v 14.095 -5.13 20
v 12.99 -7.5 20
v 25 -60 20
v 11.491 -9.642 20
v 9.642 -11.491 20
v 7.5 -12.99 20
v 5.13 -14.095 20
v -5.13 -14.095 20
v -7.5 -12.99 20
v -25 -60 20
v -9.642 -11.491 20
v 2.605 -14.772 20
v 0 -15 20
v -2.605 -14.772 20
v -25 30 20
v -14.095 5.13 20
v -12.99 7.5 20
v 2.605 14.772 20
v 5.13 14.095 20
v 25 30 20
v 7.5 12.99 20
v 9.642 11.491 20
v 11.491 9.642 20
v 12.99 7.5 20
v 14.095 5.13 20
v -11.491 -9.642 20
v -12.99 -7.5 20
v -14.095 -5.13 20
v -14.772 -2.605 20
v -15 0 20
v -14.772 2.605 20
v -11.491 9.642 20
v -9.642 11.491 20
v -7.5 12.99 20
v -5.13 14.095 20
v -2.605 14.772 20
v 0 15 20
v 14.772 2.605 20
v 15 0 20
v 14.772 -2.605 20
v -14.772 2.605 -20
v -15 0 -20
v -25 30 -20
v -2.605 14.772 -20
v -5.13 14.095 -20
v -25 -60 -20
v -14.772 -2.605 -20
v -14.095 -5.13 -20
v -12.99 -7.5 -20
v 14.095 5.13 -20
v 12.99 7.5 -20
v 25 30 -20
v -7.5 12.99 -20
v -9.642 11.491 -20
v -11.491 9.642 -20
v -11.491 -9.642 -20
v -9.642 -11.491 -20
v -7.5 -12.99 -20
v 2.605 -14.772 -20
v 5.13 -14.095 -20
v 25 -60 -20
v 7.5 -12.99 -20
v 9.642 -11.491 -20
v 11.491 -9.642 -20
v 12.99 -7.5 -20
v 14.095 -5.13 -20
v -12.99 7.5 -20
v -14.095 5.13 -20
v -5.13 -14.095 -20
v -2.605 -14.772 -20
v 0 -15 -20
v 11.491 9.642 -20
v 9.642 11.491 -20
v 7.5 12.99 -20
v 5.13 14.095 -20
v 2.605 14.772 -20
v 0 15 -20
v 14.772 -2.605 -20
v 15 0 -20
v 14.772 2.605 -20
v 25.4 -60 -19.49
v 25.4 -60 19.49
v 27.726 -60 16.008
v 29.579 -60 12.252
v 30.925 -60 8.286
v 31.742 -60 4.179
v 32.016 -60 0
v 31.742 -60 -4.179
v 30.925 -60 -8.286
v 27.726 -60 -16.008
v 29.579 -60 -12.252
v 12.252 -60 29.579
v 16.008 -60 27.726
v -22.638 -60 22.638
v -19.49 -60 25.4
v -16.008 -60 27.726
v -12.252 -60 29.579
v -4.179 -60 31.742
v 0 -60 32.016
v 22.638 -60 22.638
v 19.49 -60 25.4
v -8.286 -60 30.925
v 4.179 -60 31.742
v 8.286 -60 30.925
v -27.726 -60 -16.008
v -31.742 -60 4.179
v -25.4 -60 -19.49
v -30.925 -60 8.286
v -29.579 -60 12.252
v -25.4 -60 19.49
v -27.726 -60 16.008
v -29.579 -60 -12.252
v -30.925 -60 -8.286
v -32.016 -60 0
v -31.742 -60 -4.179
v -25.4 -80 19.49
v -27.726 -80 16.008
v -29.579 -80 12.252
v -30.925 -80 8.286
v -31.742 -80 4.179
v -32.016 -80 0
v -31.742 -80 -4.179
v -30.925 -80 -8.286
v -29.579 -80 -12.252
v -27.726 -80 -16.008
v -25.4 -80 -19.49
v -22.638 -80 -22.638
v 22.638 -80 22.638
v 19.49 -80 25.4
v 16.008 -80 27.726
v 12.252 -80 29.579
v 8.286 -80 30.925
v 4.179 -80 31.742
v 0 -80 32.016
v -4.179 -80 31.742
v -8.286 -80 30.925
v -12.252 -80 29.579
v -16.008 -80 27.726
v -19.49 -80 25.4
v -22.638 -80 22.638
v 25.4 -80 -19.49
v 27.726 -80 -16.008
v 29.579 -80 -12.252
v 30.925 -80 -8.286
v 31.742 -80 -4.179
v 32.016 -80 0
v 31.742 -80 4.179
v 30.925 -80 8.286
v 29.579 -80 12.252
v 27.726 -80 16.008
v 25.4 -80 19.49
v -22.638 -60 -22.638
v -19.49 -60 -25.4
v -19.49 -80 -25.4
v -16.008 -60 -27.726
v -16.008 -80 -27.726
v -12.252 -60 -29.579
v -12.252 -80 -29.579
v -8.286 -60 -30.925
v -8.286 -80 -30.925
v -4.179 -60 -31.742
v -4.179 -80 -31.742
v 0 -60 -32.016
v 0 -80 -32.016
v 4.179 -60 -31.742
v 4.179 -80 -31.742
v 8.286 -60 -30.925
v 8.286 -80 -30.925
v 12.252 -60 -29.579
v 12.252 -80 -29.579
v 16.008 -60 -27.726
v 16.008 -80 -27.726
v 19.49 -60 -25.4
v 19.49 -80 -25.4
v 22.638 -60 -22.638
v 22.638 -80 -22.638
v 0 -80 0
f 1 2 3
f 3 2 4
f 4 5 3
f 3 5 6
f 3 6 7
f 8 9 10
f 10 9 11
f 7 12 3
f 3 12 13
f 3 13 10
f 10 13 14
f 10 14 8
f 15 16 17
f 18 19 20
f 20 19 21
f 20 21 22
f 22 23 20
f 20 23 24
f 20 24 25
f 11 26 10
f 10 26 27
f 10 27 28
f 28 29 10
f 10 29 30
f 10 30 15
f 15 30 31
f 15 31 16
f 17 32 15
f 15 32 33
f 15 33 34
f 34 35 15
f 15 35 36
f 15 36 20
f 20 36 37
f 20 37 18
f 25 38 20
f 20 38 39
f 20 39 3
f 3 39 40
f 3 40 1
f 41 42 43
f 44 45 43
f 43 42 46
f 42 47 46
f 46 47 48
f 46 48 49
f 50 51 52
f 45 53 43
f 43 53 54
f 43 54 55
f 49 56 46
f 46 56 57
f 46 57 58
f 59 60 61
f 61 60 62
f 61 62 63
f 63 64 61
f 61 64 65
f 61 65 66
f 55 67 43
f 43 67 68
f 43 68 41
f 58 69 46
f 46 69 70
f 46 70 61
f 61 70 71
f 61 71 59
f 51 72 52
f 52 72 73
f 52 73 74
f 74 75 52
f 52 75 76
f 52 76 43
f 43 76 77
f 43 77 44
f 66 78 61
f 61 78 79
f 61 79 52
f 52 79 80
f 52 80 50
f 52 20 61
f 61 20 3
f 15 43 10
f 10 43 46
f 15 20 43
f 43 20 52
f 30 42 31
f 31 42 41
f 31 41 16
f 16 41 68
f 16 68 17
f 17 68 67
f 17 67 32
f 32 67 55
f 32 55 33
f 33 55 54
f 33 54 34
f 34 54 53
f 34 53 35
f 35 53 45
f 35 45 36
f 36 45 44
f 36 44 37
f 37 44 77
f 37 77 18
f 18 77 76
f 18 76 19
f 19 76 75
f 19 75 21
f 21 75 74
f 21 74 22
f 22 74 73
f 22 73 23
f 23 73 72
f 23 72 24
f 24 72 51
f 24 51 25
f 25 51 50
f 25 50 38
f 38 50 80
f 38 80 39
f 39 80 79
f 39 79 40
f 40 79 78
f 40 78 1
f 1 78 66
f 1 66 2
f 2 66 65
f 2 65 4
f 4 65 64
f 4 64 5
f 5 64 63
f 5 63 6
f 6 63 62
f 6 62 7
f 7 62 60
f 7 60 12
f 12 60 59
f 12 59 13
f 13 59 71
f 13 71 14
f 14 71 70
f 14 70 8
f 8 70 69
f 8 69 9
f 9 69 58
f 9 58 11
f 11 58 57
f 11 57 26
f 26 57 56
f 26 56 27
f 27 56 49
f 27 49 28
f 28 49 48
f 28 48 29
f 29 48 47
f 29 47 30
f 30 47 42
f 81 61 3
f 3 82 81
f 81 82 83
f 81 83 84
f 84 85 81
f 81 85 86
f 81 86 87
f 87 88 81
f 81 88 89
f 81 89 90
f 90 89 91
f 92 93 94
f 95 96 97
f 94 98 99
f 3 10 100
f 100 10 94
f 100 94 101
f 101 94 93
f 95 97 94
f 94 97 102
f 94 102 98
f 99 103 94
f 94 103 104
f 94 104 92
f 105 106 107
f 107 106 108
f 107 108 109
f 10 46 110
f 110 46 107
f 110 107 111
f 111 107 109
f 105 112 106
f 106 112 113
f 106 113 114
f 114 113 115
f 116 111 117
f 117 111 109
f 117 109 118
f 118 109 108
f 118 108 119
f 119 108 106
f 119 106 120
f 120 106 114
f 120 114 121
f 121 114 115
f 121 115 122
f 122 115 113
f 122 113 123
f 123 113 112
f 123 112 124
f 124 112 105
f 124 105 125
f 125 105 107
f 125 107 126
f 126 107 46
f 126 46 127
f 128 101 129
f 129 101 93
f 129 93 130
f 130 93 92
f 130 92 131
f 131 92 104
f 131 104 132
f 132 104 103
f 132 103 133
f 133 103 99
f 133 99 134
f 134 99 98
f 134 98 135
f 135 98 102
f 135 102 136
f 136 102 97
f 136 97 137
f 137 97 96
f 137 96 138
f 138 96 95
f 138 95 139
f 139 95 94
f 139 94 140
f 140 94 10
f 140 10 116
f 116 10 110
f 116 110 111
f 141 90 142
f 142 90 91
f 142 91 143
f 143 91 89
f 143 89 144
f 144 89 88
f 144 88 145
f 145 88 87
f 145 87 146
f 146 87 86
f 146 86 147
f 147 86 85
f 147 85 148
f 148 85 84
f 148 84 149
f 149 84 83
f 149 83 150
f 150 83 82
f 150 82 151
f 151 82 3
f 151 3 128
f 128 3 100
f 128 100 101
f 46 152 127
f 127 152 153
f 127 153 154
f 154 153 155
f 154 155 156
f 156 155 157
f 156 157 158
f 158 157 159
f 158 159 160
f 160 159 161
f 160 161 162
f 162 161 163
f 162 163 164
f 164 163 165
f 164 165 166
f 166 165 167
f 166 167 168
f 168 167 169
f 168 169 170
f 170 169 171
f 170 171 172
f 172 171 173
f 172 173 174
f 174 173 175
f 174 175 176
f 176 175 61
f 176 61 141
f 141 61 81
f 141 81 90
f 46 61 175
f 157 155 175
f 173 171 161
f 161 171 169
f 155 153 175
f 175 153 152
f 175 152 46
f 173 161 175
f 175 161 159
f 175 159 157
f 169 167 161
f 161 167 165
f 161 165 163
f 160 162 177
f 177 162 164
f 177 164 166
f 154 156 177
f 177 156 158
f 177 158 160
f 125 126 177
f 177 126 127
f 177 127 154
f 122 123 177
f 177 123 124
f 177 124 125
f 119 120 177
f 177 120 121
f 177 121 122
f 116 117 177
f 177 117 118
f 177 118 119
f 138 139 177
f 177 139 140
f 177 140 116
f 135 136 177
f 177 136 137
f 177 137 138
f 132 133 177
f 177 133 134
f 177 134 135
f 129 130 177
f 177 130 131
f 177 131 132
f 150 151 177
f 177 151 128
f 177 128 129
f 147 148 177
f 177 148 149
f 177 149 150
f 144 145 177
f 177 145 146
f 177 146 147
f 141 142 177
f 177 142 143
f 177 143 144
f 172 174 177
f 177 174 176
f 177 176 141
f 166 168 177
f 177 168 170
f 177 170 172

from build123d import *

# Parameters (mm, degrees)
SKETCH2_W           = 50
SKETCH2_H           = 110
SKETCH2_R           = 15
BOSS_EXTRUDE1_DEPTH = 20
SKETCH3_R           = 32.015621187
BOSS_EXTRUDE2_DEPTH = 20


with BuildPart() as part:
    # Sketch2 → Boss-Extrude1 (new, symmetric)
    with BuildSketch(Plane.XY):
        with Locations((0, -25)):
            Rectangle(SKETCH2_W, SKETCH2_H)
        Circle(SKETCH2_R, mode=Mode.SUBTRACT)
    extrude(amount=BOSS_EXTRUDE1_DEPTH, both=True)

    # Sketch3 → Boss-Extrude2 (add)
    with BuildSketch(Plane.XZ.offset(80)):
        with Locations(Location((0, 0, 0), (0, 0, 270))):
            Circle(SKETCH3_R)
    extrude(amount=-BOSS_EXTRUDE2_DEPTH)


solid = part.part
